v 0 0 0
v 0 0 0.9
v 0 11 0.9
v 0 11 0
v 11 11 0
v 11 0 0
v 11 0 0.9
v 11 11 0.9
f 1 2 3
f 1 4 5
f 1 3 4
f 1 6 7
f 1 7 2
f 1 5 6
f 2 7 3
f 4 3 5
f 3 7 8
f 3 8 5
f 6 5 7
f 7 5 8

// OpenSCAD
/* Warning, this is a very basic generator with a lot of approximation 
input data : [DQFN, NBX, 11x11x0.9mm, 132, , B, C04-17004B]
generated by com.zoubworld.electronics.cad.model3d.Basic
Date : Sun Feb 15 10:50:49 CET 2026
*/

//body
color("black")
translate([0,0,0])
cube([11.0,11.0,0.9], center=false);
